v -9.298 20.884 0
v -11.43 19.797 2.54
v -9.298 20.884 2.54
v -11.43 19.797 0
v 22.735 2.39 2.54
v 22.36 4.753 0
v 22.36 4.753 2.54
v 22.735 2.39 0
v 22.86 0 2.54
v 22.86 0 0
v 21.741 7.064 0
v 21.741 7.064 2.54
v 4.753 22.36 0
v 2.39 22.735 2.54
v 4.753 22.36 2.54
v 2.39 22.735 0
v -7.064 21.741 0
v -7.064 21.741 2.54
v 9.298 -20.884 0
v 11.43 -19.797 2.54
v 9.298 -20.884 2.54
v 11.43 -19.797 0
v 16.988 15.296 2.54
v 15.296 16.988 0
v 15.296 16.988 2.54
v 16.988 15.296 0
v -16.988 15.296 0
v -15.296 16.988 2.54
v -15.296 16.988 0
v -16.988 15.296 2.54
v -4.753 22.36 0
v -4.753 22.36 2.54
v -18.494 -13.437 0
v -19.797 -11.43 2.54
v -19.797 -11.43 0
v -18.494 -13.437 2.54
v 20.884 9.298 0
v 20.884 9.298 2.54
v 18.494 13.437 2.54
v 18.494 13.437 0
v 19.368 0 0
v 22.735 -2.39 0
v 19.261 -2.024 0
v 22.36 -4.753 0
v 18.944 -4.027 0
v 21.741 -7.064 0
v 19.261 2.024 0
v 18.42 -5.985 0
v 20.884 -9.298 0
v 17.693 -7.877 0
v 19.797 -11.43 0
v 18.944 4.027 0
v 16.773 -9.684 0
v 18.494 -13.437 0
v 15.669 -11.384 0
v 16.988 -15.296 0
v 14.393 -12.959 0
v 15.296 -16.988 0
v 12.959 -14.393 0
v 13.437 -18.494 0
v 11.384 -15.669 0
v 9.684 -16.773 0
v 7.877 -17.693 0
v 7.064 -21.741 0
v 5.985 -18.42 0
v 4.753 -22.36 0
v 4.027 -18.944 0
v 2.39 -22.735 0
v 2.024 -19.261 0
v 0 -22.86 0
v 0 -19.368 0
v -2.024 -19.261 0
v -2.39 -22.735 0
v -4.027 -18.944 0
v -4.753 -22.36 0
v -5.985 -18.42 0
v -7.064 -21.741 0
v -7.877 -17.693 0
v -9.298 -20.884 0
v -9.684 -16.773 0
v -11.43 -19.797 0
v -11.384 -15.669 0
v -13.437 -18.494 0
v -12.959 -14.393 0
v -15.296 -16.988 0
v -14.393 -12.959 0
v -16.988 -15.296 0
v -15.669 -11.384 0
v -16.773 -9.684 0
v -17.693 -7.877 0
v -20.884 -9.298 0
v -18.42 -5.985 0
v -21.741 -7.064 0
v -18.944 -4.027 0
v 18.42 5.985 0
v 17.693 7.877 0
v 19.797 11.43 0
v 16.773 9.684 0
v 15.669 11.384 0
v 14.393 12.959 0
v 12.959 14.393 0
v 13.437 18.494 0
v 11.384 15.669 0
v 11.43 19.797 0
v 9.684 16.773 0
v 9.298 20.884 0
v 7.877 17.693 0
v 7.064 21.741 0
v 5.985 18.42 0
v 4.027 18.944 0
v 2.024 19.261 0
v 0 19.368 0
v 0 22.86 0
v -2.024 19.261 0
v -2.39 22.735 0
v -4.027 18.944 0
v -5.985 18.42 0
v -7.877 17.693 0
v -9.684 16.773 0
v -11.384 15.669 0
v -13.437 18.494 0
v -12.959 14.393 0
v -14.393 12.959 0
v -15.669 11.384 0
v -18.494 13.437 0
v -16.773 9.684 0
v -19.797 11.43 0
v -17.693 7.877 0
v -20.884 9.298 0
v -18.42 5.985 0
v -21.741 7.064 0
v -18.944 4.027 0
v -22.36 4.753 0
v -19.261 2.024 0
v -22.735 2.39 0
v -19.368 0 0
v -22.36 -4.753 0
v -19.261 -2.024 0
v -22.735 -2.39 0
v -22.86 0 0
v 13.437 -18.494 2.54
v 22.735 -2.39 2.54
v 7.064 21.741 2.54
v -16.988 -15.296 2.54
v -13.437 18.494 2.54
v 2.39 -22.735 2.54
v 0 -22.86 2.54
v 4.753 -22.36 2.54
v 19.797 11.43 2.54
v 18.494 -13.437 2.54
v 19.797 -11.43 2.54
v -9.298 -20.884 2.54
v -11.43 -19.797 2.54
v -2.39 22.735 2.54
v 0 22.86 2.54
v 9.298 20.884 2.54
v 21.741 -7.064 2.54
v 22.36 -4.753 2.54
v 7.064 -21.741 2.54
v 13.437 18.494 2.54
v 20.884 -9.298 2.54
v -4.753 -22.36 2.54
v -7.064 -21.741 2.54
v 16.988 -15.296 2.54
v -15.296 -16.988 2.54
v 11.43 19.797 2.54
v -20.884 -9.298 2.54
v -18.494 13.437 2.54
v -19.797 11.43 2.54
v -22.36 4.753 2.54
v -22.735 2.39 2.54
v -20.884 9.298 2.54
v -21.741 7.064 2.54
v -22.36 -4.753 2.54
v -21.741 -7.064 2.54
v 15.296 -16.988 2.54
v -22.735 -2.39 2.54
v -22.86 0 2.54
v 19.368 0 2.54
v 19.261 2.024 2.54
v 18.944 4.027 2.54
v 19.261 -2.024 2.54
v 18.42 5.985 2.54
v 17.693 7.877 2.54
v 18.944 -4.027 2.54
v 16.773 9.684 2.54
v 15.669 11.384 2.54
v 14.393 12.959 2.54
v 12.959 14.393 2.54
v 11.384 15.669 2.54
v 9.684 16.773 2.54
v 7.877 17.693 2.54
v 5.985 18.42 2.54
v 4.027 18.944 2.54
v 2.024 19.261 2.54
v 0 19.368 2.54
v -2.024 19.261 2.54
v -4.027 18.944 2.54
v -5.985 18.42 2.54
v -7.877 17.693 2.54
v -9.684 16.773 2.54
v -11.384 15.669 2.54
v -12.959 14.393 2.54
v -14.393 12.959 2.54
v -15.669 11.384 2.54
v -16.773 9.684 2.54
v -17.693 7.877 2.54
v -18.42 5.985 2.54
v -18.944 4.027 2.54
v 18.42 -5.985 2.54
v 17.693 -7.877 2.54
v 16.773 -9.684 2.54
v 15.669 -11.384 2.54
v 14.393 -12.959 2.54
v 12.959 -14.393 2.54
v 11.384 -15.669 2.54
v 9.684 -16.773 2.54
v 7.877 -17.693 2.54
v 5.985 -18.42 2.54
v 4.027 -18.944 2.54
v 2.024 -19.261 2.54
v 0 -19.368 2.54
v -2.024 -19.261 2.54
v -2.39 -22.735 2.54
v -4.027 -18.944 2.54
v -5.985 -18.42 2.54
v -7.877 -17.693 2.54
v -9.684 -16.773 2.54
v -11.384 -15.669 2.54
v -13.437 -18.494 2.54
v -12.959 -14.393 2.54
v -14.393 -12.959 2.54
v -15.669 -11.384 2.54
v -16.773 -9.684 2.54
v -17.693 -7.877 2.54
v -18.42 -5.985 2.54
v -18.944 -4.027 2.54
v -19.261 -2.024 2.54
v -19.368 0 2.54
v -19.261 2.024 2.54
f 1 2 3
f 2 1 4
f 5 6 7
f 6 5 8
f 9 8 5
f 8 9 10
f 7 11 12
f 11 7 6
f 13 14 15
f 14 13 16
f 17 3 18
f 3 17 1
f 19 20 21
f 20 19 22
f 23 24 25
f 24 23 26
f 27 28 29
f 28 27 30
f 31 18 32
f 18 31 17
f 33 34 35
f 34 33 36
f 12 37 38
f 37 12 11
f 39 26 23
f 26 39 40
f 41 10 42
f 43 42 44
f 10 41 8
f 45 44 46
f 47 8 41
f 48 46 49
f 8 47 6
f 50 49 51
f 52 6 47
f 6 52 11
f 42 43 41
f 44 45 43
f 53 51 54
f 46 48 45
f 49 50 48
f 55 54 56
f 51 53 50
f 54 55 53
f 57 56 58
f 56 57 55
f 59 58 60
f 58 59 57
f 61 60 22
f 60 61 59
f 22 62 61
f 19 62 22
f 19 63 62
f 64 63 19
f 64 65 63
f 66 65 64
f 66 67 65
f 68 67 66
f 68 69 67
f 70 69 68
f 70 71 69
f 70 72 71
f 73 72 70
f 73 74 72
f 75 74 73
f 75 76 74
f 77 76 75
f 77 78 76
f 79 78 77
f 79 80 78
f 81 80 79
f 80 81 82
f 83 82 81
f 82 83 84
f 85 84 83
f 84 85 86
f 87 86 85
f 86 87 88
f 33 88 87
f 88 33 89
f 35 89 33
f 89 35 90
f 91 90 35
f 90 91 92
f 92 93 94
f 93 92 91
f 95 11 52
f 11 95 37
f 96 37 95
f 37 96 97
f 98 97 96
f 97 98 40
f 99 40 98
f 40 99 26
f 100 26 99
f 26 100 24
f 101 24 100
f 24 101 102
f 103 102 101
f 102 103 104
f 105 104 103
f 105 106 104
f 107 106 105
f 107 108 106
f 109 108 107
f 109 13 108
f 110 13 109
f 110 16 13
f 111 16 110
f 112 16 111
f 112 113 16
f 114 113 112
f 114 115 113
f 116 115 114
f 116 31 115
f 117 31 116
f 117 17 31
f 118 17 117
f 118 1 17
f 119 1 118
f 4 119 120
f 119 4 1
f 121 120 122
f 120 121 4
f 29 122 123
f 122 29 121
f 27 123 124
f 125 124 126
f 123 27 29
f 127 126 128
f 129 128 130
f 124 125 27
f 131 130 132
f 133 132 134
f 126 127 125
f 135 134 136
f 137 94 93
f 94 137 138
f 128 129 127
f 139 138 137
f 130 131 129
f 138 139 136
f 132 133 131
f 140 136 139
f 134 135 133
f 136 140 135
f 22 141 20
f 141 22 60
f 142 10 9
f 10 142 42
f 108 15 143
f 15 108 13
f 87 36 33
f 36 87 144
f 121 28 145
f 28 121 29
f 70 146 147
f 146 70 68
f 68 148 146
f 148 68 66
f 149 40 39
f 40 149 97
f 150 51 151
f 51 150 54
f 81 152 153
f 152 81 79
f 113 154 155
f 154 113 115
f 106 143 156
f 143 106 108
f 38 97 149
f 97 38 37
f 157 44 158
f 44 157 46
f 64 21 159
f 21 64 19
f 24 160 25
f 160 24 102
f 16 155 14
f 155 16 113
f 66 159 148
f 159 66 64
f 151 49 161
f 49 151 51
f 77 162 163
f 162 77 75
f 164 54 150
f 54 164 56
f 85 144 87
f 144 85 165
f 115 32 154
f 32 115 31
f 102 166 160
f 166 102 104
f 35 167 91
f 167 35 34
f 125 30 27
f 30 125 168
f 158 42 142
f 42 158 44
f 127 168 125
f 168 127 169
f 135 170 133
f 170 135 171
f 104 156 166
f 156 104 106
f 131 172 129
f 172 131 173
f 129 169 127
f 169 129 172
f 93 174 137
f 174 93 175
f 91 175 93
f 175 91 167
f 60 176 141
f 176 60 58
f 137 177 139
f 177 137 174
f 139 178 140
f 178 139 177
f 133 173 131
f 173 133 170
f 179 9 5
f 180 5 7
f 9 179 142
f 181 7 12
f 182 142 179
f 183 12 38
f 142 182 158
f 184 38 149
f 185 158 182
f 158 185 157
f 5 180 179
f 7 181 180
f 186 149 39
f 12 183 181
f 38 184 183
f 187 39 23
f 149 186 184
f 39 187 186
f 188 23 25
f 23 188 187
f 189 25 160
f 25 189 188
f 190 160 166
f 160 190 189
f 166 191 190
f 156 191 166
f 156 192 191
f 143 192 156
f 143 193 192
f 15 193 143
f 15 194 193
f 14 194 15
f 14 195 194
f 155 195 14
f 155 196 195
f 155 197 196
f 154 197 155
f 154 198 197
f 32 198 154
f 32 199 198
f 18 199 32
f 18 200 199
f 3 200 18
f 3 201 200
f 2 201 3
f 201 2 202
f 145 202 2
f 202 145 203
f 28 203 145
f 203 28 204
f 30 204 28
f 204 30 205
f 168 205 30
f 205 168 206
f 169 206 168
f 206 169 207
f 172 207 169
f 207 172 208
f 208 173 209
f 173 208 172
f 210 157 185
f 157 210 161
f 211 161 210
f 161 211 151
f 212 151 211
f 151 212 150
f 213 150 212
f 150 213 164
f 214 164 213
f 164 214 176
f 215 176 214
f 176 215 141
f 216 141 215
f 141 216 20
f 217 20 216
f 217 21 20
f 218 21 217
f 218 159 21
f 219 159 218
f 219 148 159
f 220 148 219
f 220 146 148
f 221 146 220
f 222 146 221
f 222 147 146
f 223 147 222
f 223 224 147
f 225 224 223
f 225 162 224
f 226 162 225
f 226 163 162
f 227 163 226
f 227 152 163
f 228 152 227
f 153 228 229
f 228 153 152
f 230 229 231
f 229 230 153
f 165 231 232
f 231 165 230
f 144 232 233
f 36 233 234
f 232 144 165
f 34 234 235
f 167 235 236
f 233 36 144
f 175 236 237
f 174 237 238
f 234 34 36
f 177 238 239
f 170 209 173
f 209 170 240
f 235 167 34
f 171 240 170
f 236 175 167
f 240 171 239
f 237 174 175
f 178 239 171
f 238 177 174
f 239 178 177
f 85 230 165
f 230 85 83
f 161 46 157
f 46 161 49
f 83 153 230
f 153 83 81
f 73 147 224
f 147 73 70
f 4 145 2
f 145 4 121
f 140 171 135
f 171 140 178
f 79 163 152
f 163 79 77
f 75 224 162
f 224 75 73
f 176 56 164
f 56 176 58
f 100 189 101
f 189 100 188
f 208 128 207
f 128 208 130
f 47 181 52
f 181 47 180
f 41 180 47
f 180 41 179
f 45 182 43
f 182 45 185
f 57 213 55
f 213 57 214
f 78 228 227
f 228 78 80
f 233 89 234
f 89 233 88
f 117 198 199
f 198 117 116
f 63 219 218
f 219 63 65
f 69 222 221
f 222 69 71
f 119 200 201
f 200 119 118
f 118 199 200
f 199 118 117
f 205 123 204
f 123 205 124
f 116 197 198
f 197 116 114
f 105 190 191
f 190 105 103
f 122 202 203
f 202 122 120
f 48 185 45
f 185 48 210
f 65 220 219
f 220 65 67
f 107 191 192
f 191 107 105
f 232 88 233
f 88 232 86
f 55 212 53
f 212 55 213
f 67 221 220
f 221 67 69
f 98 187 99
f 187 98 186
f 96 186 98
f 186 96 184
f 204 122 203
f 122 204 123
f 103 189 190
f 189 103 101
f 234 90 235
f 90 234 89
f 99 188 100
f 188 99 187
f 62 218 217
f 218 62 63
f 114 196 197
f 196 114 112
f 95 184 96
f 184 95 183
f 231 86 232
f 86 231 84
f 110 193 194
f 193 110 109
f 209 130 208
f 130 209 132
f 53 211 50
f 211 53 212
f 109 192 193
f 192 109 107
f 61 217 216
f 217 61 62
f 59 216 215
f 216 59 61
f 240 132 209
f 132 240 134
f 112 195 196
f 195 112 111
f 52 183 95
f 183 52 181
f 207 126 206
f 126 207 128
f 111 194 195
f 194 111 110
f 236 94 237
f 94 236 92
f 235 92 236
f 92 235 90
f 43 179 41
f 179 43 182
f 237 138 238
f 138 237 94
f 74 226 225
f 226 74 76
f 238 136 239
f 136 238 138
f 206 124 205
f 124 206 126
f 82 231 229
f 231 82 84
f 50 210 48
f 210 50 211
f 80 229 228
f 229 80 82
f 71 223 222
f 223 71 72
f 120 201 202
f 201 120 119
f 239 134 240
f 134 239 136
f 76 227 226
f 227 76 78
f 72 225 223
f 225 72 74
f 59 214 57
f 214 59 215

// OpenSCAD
/* OpenSCAD file for a "test" washer prior to
 * printing the actual cap.
 * Tom Trebisky  3-21-2026
 */
mmpi = 25.4;

/* I measure the microscope flange as 1.495 inches and
 *  try a print at 1.5.  It is too tight and I measure
 *  the ID at 1.48.  So we should add 0.020.
 *  I will add 0.025
 * Note: I measure the OD at 1.85, so that is bigger too,
 *  and by 0.050 inches.
 */
// inner_diam = 1.5 * mmpi;
inner_diam = 1.525 * mmpi;
outer_diam = 1.8 * mmpi;

// This is the thickness.
// height = 0.25 * mmpi;
height = 0.1 * mmpi;

// In mm
extra = 2.0;

r_in = inner_diam / 2.0;
r_out = outer_diam / 2.0;
h_extra = height + extra;

// Note - OpenSCAD will yield undersized holes since a cylinder
// (or circle) will be generated as a polygon with vertices on
// the specified radius.  The default seems to be a 12 sided polygon
// but the $fn parameter will override that.

// We can set the circle resolution in a global way like this,
// or individualy below.  This is all about OpenSCAD scope.

$fn = 60;

difference () {
    cylinder( r = r_out, h = height );
    translate([0,0,-1.0]) cylinder( r = r_in, h = h_extra );
}

// THE END
